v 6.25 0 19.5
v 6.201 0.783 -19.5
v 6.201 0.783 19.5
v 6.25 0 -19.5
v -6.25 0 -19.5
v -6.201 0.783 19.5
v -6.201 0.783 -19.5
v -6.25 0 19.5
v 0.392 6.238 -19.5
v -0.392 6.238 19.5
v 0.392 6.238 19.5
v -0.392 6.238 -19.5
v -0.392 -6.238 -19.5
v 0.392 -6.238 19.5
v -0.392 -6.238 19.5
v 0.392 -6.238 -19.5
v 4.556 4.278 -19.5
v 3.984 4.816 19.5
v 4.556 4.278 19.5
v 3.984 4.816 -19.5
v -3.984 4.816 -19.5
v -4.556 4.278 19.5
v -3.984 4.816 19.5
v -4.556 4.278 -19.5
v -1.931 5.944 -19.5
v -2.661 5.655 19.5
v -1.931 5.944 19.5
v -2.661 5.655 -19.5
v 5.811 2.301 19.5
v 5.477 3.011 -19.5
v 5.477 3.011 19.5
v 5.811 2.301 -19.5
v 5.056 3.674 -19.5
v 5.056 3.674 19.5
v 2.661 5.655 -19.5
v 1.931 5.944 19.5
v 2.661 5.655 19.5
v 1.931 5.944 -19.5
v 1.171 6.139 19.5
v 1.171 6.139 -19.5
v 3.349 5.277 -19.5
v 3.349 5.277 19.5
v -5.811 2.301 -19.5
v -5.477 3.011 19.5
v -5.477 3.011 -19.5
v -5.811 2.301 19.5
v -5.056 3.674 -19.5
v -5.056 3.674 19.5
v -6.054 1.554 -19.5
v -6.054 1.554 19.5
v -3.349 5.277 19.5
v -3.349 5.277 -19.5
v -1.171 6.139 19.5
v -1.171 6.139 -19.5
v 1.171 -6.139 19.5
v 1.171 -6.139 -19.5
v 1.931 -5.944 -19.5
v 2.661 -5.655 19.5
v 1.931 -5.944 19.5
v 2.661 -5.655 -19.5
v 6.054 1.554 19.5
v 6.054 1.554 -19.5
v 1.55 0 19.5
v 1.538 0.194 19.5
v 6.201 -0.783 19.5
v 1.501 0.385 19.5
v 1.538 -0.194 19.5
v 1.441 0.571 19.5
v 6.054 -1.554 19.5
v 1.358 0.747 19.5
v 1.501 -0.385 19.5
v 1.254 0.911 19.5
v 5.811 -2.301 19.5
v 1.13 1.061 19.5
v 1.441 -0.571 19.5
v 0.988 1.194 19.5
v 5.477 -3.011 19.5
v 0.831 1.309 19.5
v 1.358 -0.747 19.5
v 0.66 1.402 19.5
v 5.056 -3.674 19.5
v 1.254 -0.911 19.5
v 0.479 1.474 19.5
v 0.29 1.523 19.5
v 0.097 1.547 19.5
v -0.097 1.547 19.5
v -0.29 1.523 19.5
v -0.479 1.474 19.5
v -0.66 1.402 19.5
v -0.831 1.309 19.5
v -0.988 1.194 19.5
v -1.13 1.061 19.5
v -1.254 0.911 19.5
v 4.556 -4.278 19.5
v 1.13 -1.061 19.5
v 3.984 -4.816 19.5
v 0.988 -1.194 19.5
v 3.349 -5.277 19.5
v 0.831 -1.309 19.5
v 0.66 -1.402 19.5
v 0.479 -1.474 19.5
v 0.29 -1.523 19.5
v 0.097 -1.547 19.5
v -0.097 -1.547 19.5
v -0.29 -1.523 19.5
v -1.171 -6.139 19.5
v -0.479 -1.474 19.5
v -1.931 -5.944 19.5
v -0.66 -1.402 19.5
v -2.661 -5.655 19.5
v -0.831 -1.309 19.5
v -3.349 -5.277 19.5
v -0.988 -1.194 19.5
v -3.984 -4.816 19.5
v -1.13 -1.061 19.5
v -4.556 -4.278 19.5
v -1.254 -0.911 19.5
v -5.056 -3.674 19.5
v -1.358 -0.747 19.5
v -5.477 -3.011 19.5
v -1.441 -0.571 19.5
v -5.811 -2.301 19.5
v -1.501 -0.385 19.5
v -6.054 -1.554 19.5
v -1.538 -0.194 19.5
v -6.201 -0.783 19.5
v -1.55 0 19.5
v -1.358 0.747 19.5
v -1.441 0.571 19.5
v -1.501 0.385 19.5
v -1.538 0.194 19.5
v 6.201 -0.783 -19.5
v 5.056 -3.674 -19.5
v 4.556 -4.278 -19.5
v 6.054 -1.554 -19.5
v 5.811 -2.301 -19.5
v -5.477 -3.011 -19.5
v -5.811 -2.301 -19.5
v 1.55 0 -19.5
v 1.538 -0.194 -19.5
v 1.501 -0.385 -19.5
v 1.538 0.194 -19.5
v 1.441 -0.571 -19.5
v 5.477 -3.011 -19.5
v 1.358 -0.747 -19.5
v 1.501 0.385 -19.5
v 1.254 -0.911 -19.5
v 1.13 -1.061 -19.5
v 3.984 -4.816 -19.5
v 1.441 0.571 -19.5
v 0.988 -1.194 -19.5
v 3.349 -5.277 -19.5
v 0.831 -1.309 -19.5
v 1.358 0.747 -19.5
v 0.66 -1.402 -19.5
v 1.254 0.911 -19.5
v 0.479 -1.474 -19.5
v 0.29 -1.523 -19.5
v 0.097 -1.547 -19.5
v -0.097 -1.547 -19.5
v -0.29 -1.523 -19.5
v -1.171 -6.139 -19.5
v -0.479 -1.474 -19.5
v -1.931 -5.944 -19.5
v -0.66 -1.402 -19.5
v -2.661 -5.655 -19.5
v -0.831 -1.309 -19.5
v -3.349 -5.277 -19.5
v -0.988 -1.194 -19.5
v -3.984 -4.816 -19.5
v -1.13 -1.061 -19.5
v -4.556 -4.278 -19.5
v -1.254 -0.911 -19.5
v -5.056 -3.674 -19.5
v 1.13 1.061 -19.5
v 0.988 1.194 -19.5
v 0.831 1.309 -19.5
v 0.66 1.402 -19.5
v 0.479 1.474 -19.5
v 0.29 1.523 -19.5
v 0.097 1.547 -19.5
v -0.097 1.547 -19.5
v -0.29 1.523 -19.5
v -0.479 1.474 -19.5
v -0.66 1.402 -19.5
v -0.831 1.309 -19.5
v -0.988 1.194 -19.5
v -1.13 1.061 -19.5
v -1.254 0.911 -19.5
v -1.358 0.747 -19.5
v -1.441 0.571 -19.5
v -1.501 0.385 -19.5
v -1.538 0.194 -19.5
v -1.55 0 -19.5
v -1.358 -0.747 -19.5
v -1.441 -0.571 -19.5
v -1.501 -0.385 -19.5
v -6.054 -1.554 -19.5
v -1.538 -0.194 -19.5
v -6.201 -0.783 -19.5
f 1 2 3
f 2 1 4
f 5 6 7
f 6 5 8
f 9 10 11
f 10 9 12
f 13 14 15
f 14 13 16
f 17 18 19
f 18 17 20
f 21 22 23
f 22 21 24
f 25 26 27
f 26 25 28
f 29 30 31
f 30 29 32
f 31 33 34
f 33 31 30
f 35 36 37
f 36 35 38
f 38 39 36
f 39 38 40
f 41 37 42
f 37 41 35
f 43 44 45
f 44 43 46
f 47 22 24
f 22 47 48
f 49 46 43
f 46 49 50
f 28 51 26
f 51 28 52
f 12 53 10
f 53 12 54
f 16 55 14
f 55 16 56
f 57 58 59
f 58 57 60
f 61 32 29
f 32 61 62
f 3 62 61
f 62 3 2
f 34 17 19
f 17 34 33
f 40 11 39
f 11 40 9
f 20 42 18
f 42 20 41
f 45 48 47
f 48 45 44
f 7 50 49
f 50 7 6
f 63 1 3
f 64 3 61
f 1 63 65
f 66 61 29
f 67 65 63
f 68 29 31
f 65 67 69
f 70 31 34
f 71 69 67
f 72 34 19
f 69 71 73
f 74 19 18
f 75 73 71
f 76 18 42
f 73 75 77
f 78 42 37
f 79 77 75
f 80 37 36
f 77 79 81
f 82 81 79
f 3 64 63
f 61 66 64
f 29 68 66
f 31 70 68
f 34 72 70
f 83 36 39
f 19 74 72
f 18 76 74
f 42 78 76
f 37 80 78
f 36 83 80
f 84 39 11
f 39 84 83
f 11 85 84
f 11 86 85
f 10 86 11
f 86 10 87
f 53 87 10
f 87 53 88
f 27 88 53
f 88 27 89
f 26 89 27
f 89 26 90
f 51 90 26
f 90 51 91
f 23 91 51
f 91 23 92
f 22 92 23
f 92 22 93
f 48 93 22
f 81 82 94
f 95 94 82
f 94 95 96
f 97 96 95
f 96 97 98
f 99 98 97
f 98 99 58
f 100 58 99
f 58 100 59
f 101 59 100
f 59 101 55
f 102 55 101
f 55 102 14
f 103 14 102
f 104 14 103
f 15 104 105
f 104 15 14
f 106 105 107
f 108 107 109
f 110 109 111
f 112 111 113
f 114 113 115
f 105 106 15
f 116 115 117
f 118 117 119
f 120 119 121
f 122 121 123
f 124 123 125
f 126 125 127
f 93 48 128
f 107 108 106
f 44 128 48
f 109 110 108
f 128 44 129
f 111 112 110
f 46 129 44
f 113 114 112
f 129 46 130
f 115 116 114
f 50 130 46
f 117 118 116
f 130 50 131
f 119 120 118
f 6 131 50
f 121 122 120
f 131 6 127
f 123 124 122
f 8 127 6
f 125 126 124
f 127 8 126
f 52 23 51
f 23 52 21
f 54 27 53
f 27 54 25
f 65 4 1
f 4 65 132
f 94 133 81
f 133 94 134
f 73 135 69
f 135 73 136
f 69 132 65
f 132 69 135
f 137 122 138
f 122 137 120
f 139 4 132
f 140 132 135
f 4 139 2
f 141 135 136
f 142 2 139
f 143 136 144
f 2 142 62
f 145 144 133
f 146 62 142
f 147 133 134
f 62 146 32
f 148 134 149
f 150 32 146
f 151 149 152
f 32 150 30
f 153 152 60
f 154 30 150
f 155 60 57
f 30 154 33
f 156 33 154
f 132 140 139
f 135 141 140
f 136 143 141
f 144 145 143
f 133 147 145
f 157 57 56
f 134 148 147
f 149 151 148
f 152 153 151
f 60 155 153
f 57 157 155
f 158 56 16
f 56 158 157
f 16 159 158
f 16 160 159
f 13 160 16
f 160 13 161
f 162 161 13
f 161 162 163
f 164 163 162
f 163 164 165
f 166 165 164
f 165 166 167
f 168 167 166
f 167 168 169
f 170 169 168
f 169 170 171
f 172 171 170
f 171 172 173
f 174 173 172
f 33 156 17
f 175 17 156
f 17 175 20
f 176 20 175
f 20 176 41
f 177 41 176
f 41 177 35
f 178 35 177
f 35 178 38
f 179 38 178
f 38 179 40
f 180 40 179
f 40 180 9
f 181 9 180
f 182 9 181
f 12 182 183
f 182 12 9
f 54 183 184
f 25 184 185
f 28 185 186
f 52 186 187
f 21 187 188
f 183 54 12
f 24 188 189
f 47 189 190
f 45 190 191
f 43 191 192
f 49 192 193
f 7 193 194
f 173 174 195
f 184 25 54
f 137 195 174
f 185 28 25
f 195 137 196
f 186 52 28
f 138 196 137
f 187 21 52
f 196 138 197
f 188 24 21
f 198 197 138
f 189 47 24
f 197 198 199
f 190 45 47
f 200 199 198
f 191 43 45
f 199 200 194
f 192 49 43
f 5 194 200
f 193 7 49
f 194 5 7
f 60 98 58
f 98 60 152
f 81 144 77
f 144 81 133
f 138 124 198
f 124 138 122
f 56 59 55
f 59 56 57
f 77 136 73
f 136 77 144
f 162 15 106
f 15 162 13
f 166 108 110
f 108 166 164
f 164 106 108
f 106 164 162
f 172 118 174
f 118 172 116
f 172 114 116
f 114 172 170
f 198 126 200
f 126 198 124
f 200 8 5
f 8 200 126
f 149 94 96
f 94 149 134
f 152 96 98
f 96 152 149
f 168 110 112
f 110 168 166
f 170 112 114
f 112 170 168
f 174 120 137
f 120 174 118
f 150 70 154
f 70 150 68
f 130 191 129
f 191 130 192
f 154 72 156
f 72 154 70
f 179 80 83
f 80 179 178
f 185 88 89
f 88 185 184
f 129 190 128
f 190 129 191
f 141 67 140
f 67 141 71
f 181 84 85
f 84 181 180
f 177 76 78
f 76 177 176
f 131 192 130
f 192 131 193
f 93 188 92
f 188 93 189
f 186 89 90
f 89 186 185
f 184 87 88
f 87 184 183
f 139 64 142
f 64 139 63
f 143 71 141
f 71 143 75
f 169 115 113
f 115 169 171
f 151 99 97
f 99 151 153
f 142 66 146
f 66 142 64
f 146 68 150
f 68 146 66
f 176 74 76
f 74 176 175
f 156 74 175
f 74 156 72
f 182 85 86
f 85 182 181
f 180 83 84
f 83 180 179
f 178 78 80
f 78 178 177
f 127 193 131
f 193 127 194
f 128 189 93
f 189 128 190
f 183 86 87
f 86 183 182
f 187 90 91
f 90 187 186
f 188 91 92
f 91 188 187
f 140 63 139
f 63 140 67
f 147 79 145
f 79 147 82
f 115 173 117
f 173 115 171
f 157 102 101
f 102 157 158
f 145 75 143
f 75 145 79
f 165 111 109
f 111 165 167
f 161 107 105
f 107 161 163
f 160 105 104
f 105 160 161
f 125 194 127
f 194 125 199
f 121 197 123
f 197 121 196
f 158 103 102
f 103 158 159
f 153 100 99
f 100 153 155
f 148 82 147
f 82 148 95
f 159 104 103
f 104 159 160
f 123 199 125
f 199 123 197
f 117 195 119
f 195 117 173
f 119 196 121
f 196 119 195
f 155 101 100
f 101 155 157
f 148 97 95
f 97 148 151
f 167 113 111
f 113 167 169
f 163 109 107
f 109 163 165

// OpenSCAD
$fn = 50;


difference() {
	union() {
		translate(v = [0, 0, -19.5000000000]) {
			cylinder(h = 39, r = 6.2500000000);
		}
	}
	union() {
		translate(v = [0, 0, -100.0000000000]) {
			cylinder(h = 200, r = 1.5500000000);
		}
	}
}
